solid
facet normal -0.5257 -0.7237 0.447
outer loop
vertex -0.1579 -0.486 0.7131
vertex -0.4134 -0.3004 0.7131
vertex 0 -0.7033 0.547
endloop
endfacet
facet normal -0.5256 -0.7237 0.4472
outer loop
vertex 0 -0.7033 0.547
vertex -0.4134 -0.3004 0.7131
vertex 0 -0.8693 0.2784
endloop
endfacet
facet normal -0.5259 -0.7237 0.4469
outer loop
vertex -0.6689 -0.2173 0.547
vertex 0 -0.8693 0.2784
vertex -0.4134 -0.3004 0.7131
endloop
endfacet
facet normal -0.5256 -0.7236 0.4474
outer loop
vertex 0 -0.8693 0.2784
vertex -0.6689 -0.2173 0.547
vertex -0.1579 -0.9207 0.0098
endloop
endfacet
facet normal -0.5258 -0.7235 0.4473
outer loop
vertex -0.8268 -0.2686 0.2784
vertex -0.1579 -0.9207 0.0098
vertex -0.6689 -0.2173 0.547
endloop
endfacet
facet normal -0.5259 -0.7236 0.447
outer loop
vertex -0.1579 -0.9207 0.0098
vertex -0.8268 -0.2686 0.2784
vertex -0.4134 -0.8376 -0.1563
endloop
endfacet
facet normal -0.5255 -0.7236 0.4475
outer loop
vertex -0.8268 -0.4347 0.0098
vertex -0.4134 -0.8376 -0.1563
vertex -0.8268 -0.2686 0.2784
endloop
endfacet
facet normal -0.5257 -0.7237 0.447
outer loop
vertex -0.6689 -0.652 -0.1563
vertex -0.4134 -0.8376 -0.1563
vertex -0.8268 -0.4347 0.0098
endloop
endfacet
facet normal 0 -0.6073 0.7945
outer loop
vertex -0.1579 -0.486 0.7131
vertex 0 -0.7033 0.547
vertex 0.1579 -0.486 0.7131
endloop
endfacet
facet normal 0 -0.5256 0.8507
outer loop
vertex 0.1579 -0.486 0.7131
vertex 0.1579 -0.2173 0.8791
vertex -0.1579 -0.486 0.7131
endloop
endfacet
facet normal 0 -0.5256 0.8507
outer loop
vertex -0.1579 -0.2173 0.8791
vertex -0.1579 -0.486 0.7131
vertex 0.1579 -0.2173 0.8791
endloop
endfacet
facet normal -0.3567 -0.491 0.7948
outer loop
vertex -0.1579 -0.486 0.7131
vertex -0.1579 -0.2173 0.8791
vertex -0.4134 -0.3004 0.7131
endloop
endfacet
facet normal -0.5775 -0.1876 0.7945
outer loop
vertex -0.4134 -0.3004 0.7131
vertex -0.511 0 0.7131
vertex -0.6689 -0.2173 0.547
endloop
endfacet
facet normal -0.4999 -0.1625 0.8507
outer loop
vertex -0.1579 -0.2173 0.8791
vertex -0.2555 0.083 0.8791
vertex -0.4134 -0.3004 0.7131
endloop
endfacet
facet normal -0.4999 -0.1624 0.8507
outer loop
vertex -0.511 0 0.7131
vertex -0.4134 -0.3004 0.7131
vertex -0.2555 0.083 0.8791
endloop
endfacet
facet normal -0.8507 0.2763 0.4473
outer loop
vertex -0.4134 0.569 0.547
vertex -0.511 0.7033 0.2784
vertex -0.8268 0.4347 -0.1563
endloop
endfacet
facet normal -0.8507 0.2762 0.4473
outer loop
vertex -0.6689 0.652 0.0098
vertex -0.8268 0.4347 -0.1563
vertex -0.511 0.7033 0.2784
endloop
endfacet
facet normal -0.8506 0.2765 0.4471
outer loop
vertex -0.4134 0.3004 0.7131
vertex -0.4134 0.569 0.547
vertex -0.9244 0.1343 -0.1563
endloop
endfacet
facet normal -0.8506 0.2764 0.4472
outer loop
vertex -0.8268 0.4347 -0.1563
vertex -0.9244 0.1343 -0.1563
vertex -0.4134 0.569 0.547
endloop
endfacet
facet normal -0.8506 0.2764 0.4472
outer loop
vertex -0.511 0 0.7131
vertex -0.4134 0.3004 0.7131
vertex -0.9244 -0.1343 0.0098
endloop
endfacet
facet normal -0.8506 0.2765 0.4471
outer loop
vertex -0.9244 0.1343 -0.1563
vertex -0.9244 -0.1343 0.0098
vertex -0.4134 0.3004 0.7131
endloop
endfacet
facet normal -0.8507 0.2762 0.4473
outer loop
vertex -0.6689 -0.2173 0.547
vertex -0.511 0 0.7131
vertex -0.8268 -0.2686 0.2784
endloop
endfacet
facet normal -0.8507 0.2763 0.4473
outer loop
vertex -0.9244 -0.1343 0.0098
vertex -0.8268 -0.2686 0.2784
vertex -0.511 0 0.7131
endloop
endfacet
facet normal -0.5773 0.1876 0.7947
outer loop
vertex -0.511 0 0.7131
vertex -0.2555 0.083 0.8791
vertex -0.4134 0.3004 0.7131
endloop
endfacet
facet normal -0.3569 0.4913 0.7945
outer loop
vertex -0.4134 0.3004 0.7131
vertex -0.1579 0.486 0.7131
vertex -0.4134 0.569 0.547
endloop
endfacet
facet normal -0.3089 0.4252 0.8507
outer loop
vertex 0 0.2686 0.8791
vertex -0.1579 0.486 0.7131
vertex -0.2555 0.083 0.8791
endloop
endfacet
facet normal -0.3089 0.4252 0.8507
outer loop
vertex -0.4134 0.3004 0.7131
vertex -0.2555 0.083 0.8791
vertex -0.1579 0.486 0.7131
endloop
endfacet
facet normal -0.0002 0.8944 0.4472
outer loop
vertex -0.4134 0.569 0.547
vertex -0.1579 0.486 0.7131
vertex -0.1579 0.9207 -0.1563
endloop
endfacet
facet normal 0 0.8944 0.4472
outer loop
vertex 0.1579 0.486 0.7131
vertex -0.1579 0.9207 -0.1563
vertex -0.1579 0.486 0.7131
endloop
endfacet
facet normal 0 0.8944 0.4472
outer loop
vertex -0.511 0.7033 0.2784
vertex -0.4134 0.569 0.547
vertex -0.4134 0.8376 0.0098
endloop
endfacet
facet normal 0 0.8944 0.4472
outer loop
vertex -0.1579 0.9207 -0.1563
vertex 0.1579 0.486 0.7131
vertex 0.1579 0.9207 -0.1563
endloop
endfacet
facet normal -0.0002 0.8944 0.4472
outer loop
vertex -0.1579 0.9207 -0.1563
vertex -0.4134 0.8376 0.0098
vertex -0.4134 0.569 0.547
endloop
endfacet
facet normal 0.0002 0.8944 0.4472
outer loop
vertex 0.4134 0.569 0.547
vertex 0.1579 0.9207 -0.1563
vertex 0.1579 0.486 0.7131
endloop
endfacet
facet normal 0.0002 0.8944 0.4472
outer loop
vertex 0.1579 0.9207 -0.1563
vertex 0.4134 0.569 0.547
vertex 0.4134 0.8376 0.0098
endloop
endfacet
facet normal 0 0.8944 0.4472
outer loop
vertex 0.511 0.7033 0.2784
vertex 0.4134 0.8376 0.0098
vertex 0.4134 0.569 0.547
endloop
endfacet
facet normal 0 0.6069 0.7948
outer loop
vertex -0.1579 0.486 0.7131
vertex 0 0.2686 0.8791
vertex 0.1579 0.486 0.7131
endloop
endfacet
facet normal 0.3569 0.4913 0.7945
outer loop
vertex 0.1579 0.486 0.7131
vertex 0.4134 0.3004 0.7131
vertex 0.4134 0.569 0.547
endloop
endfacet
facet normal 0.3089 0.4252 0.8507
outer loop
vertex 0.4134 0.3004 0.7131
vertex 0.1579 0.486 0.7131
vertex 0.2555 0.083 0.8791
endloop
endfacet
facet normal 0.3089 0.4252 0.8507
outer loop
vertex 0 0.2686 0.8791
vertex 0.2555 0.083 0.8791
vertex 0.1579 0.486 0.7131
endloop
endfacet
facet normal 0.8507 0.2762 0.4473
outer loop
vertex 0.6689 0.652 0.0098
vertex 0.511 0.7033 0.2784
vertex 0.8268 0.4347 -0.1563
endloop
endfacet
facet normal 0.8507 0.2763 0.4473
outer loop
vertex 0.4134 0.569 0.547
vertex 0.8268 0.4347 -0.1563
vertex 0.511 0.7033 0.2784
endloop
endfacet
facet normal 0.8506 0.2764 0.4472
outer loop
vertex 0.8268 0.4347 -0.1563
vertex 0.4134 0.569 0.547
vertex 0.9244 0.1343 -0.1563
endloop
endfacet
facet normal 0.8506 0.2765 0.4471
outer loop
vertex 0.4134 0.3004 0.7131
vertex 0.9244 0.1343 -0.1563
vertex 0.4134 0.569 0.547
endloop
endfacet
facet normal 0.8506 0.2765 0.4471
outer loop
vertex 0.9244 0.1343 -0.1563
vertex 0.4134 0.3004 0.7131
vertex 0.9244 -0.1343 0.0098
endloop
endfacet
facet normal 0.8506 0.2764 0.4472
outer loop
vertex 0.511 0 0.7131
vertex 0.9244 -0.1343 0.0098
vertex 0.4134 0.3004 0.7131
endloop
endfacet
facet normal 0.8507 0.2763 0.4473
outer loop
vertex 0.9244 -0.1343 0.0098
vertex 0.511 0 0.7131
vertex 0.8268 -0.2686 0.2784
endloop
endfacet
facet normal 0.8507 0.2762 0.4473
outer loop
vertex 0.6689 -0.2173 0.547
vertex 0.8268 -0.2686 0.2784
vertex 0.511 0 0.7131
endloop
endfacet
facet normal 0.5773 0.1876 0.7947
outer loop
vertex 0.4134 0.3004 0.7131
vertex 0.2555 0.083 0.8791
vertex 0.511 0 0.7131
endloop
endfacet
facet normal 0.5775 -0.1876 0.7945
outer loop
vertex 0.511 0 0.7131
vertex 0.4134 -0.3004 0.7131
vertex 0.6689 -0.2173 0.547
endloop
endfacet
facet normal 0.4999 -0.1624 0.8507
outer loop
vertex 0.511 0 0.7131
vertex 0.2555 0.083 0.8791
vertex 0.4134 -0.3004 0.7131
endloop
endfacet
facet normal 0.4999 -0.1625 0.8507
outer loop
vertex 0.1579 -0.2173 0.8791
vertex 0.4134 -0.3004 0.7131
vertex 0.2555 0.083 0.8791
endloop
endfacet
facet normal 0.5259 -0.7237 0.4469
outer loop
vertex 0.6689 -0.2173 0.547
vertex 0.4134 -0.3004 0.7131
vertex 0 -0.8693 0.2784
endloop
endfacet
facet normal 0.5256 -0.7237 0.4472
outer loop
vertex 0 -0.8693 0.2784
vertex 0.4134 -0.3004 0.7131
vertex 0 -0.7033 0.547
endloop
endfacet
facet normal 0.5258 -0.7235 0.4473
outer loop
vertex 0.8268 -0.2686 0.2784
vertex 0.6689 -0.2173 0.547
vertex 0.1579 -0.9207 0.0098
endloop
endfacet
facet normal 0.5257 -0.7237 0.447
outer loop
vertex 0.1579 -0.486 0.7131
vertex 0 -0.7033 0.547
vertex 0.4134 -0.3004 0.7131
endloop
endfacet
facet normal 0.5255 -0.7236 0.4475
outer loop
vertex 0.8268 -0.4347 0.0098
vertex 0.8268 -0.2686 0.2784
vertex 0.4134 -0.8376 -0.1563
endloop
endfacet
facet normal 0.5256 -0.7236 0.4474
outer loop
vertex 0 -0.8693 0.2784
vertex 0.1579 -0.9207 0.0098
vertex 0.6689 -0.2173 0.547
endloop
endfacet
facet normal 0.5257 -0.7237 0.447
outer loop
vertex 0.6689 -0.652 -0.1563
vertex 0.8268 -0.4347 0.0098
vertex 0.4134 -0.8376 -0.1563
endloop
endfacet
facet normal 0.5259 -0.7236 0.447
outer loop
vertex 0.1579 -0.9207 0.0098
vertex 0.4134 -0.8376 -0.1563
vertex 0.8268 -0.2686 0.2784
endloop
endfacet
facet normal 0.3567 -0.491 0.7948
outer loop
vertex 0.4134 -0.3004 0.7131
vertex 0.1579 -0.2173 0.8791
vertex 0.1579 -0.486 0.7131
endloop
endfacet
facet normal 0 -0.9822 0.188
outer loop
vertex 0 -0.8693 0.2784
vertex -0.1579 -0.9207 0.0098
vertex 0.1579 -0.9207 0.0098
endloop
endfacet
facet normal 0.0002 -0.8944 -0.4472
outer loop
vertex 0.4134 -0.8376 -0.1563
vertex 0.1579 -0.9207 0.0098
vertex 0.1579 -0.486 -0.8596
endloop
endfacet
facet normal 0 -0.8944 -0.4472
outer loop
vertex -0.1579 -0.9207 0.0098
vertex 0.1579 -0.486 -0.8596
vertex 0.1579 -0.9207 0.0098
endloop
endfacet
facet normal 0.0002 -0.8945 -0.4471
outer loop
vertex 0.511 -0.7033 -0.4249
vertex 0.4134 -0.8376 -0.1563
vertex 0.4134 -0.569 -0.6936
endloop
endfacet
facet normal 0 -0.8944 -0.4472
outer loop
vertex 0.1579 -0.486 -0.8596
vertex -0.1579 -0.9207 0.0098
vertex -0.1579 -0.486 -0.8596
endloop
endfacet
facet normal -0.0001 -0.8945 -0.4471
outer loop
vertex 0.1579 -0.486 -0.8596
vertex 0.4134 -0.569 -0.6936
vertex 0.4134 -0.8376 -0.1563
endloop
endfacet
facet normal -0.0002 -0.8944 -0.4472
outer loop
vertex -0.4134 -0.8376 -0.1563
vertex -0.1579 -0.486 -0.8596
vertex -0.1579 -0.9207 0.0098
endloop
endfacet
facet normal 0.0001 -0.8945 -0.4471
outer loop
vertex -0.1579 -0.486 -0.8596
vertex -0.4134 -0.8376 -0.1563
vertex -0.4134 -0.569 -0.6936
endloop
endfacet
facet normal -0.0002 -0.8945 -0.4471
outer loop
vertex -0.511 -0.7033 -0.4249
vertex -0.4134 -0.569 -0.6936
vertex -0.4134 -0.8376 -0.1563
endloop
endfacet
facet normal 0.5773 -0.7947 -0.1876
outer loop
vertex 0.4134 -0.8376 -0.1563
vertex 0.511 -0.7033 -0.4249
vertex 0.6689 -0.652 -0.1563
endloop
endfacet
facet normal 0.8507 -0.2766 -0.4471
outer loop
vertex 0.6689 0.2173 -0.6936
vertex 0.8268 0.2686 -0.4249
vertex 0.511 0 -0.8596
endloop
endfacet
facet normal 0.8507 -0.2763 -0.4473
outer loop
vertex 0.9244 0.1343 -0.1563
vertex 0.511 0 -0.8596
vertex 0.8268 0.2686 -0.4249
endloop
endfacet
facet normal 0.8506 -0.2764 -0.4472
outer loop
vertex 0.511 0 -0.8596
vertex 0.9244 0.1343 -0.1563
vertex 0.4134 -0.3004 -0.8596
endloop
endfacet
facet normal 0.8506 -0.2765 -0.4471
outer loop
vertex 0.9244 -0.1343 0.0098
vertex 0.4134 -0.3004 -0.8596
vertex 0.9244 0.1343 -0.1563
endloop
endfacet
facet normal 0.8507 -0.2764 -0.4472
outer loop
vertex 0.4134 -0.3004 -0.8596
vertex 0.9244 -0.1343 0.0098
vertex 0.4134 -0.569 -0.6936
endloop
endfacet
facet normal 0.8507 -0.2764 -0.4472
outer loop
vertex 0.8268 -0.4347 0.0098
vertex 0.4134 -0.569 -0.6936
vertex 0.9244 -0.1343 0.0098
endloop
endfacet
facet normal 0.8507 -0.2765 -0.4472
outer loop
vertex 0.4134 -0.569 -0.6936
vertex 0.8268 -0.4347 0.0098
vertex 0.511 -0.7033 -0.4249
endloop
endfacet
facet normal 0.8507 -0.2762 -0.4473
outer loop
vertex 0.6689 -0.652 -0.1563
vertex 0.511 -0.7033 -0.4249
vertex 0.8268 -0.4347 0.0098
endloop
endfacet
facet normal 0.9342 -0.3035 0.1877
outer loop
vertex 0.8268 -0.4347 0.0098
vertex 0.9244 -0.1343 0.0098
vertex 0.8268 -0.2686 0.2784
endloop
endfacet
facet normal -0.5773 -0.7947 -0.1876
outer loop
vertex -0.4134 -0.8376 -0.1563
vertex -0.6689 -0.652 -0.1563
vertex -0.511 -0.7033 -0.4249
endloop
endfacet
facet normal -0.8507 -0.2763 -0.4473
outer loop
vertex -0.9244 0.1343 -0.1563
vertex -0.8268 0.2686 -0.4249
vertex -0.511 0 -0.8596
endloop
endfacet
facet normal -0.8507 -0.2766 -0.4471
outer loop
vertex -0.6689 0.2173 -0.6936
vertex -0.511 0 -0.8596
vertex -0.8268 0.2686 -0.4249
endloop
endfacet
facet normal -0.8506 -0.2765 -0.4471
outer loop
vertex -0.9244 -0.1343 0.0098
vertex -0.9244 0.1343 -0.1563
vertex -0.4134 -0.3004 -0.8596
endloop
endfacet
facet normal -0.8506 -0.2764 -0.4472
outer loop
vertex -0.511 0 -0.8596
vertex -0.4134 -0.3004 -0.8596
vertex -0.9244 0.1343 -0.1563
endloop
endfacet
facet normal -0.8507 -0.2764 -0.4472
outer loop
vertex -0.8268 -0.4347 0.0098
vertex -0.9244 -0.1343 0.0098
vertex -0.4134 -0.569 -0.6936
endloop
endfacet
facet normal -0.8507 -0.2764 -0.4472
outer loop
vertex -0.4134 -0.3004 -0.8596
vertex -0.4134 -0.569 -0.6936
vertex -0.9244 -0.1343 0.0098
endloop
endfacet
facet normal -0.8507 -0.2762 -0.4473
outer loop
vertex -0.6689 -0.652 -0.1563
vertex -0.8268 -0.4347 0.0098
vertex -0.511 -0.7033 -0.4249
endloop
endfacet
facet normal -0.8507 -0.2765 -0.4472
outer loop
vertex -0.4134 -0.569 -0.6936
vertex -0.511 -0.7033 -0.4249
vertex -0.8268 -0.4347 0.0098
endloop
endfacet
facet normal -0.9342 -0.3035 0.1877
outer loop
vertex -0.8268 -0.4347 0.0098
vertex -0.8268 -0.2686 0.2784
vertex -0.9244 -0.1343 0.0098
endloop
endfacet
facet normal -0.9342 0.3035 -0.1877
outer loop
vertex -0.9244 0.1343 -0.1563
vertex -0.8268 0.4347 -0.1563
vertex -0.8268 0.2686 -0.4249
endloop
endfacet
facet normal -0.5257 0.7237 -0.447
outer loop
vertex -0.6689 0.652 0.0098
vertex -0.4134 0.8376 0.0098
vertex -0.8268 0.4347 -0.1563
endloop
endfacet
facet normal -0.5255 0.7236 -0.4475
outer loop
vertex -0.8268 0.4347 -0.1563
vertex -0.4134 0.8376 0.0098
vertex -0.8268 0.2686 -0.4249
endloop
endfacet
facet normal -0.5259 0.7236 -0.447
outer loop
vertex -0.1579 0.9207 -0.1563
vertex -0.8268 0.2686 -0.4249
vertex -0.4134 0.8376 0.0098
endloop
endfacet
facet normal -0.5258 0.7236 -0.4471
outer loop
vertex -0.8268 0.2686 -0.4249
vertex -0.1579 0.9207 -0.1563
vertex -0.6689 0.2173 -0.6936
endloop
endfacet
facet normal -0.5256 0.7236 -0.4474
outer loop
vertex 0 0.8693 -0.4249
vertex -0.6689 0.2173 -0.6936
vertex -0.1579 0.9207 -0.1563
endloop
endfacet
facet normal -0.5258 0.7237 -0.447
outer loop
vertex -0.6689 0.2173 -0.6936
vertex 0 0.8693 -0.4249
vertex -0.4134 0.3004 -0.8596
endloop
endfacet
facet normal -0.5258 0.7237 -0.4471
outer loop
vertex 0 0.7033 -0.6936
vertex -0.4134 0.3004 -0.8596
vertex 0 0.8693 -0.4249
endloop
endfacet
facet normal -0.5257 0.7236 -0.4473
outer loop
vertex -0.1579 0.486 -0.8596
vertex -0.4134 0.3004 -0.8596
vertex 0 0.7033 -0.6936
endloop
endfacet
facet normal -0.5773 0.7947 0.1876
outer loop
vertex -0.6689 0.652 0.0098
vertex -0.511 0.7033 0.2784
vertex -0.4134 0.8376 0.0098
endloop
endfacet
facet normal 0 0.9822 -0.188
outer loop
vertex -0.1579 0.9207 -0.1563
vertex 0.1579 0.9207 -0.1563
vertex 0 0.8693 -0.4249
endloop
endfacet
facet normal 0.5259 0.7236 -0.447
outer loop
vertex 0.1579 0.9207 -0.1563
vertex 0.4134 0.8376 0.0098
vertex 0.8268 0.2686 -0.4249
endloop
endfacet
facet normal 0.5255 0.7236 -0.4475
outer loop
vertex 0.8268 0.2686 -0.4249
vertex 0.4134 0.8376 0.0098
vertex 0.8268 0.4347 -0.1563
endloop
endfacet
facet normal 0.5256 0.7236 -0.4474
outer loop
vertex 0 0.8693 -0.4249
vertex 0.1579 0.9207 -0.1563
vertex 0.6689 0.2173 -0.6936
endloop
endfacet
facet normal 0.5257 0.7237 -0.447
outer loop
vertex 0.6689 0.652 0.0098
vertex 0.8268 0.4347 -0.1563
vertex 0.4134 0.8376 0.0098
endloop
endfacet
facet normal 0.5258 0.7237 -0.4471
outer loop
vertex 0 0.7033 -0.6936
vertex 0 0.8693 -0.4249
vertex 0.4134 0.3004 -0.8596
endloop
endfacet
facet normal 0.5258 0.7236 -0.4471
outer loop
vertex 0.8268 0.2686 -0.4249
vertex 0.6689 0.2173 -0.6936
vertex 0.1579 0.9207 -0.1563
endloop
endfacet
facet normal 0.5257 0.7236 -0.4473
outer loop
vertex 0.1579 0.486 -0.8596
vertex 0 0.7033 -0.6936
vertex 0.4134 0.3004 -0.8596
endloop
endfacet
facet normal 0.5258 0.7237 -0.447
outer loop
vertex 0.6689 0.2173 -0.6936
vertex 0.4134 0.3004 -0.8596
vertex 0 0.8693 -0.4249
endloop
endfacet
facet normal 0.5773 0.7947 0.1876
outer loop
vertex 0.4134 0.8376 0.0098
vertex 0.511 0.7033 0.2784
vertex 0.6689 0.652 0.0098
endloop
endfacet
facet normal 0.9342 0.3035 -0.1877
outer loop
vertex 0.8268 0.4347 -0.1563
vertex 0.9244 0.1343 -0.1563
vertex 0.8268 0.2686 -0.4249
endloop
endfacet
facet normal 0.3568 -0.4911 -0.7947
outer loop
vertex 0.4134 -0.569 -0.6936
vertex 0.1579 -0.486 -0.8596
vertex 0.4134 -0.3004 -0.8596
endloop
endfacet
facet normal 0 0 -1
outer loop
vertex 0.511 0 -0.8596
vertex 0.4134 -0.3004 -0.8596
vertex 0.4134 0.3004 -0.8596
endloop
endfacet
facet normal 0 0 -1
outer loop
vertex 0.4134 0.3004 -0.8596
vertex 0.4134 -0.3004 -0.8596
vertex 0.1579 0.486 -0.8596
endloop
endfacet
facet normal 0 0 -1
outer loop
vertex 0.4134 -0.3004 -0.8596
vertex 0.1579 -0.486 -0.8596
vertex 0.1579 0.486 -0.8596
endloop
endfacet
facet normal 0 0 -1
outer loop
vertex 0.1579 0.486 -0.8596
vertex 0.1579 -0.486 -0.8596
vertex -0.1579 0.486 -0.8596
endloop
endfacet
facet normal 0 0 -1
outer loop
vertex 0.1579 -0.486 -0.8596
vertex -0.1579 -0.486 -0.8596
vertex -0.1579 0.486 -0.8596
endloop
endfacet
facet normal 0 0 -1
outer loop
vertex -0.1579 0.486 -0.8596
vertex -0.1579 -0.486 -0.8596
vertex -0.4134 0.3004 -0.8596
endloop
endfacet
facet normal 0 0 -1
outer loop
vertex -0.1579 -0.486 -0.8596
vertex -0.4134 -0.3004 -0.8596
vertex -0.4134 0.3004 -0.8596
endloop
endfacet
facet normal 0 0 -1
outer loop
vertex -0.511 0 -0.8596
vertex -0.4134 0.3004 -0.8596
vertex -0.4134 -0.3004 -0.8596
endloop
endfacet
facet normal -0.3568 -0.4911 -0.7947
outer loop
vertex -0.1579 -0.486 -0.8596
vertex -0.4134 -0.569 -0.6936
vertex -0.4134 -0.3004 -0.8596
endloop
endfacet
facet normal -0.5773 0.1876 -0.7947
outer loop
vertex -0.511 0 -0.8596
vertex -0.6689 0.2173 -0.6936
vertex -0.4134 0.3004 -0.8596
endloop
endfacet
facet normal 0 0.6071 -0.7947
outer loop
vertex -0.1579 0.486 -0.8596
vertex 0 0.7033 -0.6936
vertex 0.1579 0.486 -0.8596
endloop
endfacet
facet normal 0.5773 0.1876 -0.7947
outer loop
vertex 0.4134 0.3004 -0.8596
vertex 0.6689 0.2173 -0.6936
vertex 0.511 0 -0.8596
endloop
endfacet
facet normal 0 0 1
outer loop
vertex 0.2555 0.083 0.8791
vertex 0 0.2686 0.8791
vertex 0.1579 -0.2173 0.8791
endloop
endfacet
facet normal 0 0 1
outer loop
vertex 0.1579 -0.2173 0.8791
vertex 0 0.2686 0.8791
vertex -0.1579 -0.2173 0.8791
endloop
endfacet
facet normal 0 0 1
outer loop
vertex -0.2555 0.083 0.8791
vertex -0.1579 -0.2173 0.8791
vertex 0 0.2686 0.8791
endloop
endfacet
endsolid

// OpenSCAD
polyhedron( points = [[-0.157903938632523, -0.485978352122361, 0.713071067430704], [-0.413397878332443, -0.30035113925469, 0.713071067430704], [-0.510987879313171, 3.03430766414075e-10, 0.713071067430704], [-0.413397878251537, 0.300351139835263, 0.713071067430704], [-0.157903938588891, 0.485978352605751, 0.713071067430704], [0.157903938648646, 0.485978352577391, 0.713071067430704], [0.413397878277961, 0.300351139761023, 0.713071067430704], [0.510987879285656, 2.1166331202438e-10, 0.713071067430704], [0.413397878250994, -0.300351139328933, 0.713071067430704], [0.157903938605017, -0.485978352122361, 0.713071067430704], [-5.56664372879074e-12, -0.703314478591894, 0.547041040935011], [-1.57767105799747e-10, -0.869344505251235, 0.278398814920584], [0.157903938419619, -0.920650605277108, 0.00975658882475597], [0.413397878089445, -0.837635592295212, -0.156273437737764], [0.668891817884414, -0.652008379706848, -0.156273437882151], [0.826795756704344, -0.434672253472125, 0.00975658848704361], [0.826795756425375, -0.268642225880394, 0.278398814807329], [0.668891817864218, -0.217336126078148, 0.54704104088129], [-0.157903938864445, -0.920650605170096, 0.0097565889446303], [-0.413397878539956, -0.837635591997203, -0.156273437513644], [-0.668891818153263, -0.652008379186333, -0.156273437503728], [-0.826795756697092, -0.434672252790406, 0.0097565889705928], [-0.826795756608504, -0.268642226104837, 0.278398814952673], [-0.66889181792134, -0.217336126166955, 0.547041040936464], [-0.924385757478176, -0.134321112721707, 0.00975658868990271], [-0.924385757401776, 0.134321113332766, -0.156273437828732], [-0.826795756334112, 0.434672252862643, -0.156273437816049], [-0.668891817718831, 0.65200837913361, 0.00975658872310364], [-0.510987879146156, 0.703314478897988, 0.278398814807329], [-0.413397878197499, 0.568993365870718, 0.54704104088129], [-0.413397878211623, 0.837635591819873, 0.00975658868990271], [-0.157903938549854, 0.920650605013938, -0.156273437828732], [0.157903938687686, 0.92065060497924, -0.156273437816049], [0.413397878317879, 0.83763559172903, 0.00975658872310364], [0.510987879326996, 0.703314478746615, 0.278398814807329], [0.413397878285423, 0.568993365786852, 0.54704104088129], [0.668891817819054, 0.652008379034466, 0.00975658868990271], [0.826795756390699, 0.434672252716118, -0.156273437828732], [0.924385757392363, 0.1343211131648, -0.156273437816049], [0.924385757405608, -0.134321112876993, 0.00975658872310364], [0.510987879140963, -0.703314479428636, -0.424915663822308], [0.413397878155424, -0.568993366340345, -0.693557889968725], [0.157903938515142, -0.485978352920773, -0.859587916407673], [-0.157903938730253, -0.485978352666936, -0.859587916297976], [-0.413397878394642, -0.568993365675793, -0.693557889681536], [-0.510987879451239, -0.703314478556227, -0.424915663569276], [-0.413397877858054, -0.300351139276839, -0.859587916267441], [-0.510987878871539, 2.70640416941249e-10, -0.859587916300235], [-0.668891817544499, 0.217336126563749, -0.693557889844919], [-0.826795756258646, 0.268642226334133, -0.424915663854795], [-0.413397878126005, 0.30035113937725, -0.859587916267438], [-0.157903938483603, 0.485978352175605, -0.859587916300231], [1.17315771016745e-10, 0.703314478521055, -0.693557889844919], [8.22522652024325e-11, 0.869344505127962, -0.424915663854795], [0.157903938251847, 0.485978352316477, -0.859587916267441], [0.413397877901407, 0.300351139527972, -0.859587916300235], [0.668891817597998, 0.217336126314441, -0.693557889844919], [0.826795756290475, 0.268642226151517, -0.424915663854798], [0.510987879778942, -8.80321332610415e-10, -0.859587916806083], [0.413397878399073, -0.300351140257366, -0.859587916677603], [-0.15790393833758, -0.217336125907885, 0.879101093708078], [0.157903938590835, -0.217336126026225, 0.879101093881923], [0.255493939603492, 0.0830150134777769, 0.879101093881923], [2.17852476550343e-12, 0.268642226261911, 0.879101093881924], [-0.255493939348153, 0.0830150135295315, 0.879101093667482]], faces = [[0, 1, 23, 22, 21, 20, 19, 18, 11, 10], [0, 10, 9], [0, 9, 61, 60], [0, 60, 1], [1, 2, 23], [1, 60, 64, 2], [2, 3, 29, 28, 27, 26, 25, 24, 22, 23], [2, 64, 3], [3, 4, 29], [3, 64, 63, 4], [4, 5, 35, 34, 33, 32, 31, 30, 28, 29], [4, 63, 5], [5, 6, 35], [5, 63, 62, 6], [6, 7, 17, 16, 39, 38, 37, 36, 34, 35], [6, 62, 7], [7, 8, 17], [7, 62, 61, 8], [8, 9, 10, 11, 12, 13, 14, 15, 16, 17], [8, 61, 9], [11, 18, 12], [12, 18, 19, 45, 44, 43, 42, 41, 40, 13], [13, 40, 14], [14, 40, 41, 59, 58, 56, 57, 38, 39, 15], [15, 39, 16], [19, 20, 45], [20, 21, 24, 25, 49, 48, 47, 46, 44, 45], [21, 22, 24], [25, 26, 49], [26, 27, 30, 31, 53, 52, 51, 50, 48, 49], [27, 28, 30], [31, 32, 53], [32, 33, 36, 37, 57, 56, 55, 54, 52, 53], [33, 34, 36], [37, 38, 57], [41, 42, 59], [42, 43, 46, 47, 50, 51, 54, 55, 58, 59], [43, 44, 46], [47, 48, 50], [51, 52, 54], [55, 56, 58], [60, 61, 62, 63, 64]]);
